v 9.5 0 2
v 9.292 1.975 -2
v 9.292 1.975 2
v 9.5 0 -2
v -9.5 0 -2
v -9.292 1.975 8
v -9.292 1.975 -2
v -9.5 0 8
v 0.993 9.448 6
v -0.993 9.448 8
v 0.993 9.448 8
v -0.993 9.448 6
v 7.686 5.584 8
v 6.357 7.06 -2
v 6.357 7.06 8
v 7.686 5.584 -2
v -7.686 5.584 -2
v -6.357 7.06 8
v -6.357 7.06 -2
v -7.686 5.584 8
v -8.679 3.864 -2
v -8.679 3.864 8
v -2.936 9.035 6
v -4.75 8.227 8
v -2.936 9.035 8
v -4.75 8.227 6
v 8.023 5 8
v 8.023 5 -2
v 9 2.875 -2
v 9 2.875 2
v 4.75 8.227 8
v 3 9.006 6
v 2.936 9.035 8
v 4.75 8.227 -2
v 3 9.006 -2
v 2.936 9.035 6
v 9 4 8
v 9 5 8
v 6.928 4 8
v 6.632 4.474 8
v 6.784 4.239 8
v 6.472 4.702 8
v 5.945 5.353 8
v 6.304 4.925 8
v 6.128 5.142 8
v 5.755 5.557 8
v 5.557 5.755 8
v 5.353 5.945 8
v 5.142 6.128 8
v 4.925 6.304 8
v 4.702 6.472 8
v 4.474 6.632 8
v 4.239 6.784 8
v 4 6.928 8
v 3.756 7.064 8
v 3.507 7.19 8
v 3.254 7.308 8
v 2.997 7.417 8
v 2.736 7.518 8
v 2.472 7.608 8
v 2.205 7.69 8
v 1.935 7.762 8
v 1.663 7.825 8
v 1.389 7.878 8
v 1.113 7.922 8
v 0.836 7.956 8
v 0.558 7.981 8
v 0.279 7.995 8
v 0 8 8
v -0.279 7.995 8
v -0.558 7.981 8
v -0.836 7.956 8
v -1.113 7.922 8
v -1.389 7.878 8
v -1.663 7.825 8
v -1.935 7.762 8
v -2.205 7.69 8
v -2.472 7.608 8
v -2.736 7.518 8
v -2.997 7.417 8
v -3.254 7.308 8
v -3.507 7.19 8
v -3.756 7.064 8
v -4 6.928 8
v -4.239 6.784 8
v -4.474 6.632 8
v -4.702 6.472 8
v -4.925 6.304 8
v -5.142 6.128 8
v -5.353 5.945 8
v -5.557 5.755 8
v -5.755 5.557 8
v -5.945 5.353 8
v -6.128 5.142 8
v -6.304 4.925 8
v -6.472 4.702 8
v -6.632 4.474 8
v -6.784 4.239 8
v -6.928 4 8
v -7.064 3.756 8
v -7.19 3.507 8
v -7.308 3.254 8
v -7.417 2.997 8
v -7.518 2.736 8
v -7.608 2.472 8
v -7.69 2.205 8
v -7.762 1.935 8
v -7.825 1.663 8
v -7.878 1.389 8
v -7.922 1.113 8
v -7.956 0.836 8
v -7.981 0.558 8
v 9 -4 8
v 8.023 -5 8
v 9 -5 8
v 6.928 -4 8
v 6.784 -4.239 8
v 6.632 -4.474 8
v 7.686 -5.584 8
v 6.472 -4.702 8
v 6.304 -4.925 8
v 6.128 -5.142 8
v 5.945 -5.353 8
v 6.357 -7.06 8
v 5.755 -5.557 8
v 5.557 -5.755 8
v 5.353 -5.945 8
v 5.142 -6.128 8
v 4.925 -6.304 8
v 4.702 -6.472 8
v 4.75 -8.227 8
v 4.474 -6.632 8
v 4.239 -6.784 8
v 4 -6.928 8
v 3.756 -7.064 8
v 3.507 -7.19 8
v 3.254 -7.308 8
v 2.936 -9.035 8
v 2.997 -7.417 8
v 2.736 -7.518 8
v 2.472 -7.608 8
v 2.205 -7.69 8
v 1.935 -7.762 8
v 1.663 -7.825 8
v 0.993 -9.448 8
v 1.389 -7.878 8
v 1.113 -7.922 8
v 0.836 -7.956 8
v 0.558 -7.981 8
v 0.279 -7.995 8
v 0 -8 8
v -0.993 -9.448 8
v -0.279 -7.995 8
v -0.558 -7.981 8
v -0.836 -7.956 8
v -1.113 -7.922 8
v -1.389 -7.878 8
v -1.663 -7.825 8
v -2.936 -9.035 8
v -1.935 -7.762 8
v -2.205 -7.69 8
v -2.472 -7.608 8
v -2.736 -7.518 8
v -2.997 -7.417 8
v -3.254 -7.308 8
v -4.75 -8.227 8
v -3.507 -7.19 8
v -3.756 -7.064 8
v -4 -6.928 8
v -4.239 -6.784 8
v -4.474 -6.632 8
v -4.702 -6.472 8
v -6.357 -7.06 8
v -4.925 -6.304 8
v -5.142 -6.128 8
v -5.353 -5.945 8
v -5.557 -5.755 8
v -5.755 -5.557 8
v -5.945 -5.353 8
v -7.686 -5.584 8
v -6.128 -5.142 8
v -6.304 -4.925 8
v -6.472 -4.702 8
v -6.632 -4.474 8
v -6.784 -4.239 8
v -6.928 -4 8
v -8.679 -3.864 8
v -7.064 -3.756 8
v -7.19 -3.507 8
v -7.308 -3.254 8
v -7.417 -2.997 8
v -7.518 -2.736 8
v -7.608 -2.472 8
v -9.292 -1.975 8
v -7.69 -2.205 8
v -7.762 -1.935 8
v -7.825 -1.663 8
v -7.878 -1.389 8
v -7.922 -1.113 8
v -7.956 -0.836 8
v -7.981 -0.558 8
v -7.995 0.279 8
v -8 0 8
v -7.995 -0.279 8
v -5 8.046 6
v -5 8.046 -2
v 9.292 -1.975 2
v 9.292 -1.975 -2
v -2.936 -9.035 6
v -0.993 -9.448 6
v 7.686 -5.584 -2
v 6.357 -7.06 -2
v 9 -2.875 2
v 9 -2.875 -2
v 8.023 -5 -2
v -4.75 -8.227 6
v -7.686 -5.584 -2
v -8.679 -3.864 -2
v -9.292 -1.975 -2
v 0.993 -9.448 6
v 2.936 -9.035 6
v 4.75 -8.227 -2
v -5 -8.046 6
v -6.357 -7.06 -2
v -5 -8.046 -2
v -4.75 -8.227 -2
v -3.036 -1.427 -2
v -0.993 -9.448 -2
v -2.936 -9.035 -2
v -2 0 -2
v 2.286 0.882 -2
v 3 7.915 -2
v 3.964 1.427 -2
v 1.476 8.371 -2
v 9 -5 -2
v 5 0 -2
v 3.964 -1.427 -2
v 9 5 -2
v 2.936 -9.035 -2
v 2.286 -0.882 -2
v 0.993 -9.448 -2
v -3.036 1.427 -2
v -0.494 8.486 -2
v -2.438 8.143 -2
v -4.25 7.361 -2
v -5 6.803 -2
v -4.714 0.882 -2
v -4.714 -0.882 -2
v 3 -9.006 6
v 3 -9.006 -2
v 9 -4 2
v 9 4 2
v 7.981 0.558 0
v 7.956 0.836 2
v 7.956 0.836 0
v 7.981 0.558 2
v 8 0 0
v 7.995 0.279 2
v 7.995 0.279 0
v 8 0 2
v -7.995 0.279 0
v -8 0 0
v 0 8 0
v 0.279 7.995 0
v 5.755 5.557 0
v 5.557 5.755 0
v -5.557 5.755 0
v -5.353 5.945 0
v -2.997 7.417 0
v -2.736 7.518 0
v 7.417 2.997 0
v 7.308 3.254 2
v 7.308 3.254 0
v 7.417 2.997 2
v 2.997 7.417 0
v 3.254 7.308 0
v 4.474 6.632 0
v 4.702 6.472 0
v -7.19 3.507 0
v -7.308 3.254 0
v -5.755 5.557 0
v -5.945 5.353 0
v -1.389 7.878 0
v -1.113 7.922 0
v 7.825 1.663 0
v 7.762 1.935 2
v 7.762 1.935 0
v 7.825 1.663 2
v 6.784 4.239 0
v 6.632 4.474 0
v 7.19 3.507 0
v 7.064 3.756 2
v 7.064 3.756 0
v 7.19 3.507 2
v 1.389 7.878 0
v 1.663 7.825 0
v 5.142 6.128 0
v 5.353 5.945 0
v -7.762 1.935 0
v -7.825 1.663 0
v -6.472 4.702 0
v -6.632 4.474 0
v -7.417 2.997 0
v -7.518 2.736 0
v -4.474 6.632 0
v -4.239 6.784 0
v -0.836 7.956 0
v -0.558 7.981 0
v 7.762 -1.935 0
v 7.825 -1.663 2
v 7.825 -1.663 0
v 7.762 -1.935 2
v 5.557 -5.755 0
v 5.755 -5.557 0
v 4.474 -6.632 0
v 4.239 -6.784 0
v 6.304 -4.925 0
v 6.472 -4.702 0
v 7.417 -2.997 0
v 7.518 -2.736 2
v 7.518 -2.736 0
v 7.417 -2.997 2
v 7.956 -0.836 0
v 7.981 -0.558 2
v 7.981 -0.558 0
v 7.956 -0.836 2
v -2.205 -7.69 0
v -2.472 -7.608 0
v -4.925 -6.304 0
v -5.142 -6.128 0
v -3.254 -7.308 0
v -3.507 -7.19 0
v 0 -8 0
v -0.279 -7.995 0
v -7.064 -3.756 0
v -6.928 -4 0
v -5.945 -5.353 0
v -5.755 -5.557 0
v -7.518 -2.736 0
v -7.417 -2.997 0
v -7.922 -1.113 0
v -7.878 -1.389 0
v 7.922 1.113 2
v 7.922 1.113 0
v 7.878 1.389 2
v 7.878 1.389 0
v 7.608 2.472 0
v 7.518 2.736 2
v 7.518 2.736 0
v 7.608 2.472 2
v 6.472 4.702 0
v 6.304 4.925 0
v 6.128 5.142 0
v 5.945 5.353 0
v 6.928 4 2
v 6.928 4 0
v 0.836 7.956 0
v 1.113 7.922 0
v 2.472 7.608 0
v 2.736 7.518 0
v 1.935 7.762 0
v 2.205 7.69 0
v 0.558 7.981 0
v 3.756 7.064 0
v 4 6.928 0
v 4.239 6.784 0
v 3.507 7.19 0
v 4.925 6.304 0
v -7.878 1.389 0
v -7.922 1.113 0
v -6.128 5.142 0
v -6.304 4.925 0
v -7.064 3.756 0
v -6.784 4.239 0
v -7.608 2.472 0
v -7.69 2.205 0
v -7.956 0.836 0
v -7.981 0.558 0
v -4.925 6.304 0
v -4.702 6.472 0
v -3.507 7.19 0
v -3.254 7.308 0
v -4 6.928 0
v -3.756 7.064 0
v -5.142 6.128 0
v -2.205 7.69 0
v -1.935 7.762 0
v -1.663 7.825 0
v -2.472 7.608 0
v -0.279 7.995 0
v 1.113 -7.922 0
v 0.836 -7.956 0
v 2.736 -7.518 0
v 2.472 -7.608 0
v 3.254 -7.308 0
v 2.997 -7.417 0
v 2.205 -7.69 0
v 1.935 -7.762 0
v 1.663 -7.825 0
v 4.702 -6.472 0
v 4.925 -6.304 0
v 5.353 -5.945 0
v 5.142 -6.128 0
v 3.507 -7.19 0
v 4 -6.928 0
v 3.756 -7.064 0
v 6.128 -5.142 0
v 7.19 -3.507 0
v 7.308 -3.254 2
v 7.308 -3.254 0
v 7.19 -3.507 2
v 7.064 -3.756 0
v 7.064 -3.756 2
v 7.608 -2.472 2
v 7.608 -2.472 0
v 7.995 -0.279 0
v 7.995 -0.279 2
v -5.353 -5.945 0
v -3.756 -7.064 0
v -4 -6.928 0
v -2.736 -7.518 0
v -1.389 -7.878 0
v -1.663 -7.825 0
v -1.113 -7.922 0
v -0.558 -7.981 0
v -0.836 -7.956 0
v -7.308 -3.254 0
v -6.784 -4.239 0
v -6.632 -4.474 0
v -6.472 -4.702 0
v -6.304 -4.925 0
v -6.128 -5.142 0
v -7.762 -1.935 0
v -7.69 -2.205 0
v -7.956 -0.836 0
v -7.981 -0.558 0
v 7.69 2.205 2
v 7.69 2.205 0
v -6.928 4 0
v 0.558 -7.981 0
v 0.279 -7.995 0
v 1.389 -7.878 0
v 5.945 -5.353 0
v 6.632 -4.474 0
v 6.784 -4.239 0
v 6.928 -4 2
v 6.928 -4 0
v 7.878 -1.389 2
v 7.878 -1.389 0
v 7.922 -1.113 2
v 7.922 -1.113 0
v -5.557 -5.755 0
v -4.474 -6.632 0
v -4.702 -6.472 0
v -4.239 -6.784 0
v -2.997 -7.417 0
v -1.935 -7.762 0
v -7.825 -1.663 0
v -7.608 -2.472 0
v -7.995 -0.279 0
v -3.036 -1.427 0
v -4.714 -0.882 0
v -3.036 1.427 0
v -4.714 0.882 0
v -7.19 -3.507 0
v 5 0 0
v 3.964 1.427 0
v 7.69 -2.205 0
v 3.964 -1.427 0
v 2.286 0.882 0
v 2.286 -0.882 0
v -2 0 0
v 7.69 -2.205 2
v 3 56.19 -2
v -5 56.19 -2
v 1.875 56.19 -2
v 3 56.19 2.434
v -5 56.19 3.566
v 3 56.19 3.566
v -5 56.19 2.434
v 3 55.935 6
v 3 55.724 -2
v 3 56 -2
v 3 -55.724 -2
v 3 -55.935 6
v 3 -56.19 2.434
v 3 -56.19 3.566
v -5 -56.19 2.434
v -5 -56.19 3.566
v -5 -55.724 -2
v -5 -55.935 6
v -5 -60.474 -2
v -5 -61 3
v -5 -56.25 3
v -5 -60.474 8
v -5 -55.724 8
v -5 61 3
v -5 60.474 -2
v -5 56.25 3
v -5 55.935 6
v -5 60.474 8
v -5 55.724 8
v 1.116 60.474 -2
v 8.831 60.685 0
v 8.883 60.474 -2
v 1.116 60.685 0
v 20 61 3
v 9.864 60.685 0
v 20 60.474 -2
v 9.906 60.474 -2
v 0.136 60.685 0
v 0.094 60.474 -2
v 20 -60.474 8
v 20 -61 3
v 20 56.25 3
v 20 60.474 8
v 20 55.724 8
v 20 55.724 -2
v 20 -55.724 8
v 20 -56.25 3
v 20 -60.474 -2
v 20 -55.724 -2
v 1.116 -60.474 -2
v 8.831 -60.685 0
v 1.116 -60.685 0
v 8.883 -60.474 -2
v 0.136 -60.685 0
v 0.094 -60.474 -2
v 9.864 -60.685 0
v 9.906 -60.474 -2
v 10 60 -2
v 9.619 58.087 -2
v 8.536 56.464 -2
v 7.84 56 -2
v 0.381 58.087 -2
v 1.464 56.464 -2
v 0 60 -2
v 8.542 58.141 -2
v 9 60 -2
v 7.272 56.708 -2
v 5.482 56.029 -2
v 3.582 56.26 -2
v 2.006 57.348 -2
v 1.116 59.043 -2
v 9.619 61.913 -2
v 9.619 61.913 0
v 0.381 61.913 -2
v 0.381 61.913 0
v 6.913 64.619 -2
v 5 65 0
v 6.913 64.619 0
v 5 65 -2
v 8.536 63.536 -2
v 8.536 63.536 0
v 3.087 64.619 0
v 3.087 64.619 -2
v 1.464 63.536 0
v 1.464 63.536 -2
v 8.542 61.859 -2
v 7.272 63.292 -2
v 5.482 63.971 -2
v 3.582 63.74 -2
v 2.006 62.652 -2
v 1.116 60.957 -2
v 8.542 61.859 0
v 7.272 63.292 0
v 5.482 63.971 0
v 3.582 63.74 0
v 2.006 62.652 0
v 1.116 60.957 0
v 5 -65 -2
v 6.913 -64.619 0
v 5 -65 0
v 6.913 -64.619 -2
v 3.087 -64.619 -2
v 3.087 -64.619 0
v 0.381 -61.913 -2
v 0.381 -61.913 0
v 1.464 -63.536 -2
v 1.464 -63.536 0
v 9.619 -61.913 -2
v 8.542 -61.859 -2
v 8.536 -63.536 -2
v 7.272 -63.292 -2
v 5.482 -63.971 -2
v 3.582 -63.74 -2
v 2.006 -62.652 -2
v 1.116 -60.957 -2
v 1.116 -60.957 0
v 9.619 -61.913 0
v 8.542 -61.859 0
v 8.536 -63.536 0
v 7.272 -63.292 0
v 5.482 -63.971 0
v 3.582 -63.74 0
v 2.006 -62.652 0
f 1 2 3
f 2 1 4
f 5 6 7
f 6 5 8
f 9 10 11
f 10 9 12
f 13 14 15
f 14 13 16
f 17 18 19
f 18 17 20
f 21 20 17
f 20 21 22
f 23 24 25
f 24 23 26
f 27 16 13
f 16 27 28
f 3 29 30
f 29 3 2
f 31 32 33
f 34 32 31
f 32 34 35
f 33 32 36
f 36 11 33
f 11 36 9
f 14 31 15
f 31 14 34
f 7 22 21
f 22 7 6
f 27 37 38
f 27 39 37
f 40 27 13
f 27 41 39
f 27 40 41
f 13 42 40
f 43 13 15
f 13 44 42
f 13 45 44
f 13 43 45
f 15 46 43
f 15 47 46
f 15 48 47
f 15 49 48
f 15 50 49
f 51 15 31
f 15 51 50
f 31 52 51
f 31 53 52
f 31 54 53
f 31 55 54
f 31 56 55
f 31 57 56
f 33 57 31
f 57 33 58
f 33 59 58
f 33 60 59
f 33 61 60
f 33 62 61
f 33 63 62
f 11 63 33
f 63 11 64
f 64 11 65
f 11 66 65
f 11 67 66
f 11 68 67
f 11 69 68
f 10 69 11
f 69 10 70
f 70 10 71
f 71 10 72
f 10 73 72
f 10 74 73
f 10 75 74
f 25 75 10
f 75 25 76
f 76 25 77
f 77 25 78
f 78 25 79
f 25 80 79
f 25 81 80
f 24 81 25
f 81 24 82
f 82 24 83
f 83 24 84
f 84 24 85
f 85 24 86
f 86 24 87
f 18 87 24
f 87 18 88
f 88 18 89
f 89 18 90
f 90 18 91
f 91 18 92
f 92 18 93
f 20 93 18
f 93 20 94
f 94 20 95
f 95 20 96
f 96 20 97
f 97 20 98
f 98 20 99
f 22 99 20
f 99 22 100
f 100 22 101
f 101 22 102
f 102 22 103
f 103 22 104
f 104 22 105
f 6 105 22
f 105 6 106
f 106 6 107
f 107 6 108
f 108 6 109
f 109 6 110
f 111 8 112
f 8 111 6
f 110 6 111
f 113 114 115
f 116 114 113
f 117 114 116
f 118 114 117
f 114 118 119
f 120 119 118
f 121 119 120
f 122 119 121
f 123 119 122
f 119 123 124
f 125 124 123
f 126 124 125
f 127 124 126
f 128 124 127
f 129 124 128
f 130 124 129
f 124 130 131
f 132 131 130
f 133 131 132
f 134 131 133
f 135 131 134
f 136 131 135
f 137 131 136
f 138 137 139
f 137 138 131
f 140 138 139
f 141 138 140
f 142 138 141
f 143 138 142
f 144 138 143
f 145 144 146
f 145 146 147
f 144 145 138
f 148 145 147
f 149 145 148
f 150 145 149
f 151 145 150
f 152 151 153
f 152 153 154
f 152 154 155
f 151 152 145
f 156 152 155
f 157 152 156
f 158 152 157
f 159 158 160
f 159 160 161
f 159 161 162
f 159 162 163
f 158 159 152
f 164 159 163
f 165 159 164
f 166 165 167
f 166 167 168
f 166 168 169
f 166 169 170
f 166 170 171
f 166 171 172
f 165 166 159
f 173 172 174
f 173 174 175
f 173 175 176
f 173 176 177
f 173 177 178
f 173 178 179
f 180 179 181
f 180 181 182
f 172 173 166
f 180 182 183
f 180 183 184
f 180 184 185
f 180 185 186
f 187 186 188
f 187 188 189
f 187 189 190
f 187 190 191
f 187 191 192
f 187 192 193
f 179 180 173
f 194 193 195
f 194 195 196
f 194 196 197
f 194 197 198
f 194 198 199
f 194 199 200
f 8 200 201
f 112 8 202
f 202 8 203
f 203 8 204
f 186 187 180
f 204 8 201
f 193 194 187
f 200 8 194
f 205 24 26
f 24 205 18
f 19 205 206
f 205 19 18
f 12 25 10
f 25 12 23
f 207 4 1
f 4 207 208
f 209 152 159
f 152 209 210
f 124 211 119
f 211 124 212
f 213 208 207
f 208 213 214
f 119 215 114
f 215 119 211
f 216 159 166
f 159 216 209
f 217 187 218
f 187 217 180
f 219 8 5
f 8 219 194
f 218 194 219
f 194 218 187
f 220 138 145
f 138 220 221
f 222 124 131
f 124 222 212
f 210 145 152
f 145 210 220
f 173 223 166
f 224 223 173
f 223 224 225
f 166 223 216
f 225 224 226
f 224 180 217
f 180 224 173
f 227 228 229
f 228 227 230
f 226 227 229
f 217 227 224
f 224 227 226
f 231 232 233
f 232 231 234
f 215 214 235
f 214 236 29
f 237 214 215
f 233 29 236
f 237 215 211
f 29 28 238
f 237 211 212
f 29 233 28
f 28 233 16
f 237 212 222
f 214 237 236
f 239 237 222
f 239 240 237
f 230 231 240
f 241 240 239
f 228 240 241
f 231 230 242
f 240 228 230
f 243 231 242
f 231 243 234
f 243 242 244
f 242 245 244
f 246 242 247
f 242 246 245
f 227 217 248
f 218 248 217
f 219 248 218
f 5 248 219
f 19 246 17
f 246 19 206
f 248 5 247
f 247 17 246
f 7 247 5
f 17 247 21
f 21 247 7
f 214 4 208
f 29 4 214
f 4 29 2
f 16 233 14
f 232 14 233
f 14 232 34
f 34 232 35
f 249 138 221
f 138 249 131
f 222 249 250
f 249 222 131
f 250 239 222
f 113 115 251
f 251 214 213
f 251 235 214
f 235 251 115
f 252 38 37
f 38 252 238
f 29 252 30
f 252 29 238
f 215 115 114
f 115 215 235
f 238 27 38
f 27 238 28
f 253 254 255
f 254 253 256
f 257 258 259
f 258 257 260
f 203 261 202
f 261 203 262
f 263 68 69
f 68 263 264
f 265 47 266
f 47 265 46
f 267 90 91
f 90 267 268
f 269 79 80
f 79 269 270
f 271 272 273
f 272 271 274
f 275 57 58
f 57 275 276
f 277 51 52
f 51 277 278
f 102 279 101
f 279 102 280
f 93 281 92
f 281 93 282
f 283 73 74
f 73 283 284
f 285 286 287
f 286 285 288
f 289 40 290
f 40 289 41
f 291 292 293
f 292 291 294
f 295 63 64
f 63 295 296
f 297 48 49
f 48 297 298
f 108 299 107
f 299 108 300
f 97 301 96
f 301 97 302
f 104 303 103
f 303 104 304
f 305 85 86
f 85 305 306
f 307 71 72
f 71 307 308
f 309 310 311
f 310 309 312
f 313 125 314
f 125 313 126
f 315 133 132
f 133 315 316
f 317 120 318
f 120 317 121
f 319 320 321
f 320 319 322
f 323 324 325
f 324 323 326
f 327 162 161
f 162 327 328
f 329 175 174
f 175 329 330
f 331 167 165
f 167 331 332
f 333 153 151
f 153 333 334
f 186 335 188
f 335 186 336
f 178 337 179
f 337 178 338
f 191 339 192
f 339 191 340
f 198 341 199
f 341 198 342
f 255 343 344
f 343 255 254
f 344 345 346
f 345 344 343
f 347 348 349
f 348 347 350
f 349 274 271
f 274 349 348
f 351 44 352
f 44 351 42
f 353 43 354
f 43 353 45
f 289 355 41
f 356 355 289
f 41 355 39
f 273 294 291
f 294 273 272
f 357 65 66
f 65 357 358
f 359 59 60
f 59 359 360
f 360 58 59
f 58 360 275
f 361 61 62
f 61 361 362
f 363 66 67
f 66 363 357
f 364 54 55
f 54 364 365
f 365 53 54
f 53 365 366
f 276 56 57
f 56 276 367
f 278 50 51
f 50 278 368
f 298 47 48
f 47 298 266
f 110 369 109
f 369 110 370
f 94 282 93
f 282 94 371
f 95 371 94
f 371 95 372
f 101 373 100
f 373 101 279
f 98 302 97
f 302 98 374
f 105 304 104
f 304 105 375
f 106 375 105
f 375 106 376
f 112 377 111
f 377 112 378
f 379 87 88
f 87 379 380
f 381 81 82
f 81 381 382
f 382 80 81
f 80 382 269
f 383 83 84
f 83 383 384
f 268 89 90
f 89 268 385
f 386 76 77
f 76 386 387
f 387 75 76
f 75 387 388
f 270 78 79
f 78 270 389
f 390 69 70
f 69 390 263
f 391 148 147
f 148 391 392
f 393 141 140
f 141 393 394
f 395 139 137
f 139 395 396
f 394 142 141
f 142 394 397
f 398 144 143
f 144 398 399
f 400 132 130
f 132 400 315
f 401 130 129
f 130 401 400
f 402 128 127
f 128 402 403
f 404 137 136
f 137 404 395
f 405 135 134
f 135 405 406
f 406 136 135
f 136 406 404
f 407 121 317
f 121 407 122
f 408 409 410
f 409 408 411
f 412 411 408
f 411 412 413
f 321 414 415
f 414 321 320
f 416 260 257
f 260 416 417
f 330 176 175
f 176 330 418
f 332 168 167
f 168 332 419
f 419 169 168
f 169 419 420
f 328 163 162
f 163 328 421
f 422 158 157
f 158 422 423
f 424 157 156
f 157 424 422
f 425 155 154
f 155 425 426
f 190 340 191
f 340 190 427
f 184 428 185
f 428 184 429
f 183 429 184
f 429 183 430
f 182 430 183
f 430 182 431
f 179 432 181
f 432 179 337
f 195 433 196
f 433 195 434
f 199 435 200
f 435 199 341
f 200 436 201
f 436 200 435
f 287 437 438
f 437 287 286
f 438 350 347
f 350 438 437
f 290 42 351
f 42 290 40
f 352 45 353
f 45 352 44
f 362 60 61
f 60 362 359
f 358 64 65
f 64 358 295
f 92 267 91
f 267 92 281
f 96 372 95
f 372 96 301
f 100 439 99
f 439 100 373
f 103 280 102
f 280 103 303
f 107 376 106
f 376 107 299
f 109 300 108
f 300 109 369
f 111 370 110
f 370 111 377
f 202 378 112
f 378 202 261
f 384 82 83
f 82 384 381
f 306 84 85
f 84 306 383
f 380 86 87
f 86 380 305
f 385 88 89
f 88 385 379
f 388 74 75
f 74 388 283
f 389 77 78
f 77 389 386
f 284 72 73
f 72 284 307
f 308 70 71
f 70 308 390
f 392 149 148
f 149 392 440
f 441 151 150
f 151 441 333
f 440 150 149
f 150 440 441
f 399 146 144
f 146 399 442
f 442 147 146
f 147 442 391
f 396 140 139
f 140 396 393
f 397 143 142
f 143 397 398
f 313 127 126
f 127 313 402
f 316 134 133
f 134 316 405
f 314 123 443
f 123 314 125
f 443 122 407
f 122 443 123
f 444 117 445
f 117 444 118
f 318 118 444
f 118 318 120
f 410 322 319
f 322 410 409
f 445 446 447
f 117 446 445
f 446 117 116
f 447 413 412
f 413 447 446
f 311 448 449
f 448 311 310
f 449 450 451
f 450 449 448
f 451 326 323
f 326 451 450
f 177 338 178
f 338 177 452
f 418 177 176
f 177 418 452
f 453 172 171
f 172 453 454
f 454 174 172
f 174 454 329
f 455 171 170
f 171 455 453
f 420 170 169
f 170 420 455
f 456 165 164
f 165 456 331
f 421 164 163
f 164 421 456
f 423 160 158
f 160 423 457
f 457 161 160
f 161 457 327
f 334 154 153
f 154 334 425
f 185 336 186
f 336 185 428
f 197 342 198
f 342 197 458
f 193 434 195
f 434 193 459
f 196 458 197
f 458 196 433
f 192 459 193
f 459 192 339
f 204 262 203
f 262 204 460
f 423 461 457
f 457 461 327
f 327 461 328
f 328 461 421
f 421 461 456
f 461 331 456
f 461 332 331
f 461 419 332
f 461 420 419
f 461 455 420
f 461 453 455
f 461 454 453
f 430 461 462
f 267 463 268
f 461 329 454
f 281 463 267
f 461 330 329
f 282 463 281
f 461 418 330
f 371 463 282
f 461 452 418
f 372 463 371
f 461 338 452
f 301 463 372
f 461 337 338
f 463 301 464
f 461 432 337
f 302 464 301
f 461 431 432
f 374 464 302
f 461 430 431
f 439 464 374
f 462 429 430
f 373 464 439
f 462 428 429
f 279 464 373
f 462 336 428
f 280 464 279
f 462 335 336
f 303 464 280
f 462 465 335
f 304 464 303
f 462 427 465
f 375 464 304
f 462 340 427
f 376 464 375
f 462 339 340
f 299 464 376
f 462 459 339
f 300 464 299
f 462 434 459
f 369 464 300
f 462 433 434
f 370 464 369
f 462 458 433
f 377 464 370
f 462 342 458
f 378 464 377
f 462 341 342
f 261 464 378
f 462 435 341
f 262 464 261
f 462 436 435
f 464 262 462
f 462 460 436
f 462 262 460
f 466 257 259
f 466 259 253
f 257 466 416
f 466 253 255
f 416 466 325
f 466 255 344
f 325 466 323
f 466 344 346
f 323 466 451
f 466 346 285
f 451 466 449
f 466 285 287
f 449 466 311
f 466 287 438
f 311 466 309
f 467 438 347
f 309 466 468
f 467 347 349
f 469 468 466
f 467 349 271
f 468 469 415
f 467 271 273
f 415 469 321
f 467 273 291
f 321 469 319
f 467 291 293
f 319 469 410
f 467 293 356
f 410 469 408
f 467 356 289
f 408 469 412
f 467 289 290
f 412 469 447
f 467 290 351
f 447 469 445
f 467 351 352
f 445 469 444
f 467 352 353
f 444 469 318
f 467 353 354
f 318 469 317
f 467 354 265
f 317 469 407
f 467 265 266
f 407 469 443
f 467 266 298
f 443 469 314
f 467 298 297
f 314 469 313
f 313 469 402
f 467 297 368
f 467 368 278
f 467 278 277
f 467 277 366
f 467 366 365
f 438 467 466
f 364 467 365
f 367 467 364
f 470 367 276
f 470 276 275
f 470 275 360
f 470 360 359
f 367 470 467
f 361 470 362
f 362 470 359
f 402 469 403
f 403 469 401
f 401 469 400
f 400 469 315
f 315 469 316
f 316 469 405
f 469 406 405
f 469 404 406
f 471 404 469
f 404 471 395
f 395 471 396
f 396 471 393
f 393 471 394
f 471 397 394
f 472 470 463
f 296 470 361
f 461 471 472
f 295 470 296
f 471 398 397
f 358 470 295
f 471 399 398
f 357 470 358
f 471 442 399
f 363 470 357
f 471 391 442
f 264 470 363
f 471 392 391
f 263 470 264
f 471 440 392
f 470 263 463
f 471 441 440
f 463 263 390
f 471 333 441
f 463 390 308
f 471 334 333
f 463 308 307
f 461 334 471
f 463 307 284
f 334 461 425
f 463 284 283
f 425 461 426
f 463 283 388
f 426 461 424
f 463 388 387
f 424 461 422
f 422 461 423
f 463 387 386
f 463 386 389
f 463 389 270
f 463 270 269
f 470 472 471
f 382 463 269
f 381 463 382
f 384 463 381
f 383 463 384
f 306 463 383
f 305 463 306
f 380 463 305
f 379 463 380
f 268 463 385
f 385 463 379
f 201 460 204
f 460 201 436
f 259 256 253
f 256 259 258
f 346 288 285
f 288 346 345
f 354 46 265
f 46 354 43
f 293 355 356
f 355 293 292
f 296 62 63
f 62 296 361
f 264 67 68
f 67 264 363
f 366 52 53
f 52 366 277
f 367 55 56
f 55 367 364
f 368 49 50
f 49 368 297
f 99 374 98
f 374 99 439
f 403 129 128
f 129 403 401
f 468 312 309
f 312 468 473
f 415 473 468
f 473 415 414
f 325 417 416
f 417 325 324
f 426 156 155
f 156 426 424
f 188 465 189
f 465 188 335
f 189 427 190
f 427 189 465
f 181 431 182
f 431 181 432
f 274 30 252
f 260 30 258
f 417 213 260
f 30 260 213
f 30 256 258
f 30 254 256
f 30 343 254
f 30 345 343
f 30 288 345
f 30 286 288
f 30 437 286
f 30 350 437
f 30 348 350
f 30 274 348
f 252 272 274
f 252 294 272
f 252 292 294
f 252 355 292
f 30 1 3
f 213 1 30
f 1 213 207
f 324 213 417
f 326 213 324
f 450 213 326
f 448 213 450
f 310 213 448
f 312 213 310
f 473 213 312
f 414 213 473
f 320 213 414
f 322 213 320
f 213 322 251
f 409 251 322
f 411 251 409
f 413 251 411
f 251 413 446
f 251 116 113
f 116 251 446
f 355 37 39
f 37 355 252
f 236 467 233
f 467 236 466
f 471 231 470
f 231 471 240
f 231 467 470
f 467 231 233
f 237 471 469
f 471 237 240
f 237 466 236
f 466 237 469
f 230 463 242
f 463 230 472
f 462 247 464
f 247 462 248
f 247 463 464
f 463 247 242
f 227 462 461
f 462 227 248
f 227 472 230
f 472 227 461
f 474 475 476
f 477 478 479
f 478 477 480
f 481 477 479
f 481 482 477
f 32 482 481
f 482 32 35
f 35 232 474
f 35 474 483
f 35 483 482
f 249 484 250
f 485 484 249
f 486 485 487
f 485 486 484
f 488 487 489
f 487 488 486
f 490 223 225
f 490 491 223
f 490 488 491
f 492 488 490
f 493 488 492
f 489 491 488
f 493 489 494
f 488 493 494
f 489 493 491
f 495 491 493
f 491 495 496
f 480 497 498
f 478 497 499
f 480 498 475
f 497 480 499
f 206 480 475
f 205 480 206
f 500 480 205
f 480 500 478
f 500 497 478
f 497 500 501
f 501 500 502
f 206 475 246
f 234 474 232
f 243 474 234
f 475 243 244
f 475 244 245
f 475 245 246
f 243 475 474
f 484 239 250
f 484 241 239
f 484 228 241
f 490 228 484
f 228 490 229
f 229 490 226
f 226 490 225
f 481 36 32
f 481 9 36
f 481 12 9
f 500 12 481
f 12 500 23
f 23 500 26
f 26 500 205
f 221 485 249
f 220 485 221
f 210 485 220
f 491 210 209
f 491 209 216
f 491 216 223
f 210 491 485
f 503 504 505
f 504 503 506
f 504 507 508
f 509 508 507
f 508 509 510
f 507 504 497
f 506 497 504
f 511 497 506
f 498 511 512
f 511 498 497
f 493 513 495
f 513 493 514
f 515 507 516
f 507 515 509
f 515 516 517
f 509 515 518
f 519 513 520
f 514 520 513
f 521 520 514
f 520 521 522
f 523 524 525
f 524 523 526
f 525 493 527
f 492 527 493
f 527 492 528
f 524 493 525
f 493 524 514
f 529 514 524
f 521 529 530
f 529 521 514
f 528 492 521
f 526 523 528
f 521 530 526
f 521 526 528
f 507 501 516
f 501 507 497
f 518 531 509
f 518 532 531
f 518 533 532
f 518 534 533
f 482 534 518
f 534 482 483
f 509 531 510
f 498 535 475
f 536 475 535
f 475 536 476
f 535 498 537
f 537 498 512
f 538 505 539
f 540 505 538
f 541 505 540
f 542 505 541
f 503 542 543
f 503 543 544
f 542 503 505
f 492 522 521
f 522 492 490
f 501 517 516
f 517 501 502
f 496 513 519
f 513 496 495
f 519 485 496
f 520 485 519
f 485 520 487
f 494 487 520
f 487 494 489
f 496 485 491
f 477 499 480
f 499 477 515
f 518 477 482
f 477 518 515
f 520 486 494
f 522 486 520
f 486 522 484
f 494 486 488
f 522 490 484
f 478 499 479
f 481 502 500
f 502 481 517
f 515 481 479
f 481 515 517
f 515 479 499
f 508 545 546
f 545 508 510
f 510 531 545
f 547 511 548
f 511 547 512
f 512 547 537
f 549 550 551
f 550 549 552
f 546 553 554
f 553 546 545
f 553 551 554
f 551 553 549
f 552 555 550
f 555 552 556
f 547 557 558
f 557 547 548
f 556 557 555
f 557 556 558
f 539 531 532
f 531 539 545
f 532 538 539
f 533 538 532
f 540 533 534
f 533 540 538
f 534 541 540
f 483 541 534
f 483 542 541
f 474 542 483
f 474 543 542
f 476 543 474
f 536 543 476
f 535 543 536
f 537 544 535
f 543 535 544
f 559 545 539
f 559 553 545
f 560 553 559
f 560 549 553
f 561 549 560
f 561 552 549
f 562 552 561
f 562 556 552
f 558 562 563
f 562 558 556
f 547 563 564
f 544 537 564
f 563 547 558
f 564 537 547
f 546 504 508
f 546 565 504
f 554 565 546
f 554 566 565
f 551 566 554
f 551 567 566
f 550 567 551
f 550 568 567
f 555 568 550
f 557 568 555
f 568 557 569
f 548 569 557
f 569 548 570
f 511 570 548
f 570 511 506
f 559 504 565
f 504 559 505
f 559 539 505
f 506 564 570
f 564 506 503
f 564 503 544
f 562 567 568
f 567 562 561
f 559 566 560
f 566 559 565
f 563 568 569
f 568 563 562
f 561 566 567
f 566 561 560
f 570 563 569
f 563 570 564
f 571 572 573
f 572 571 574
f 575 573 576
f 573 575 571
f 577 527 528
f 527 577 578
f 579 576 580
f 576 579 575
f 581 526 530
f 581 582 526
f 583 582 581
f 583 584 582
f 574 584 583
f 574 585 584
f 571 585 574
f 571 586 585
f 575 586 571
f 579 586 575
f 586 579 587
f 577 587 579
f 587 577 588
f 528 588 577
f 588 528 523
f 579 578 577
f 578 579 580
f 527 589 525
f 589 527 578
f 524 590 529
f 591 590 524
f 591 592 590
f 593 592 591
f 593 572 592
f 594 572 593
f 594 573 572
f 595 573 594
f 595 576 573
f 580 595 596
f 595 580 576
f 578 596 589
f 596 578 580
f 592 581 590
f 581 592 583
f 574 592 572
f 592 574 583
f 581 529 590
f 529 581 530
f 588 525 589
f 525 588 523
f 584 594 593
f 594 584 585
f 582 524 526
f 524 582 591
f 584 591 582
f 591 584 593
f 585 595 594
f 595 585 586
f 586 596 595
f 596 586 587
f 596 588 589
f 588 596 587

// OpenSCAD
// d = 11.7mm h = 7.1mm l = (13.6-11.7)mm x 0.58cm x 0.58cm (between pins = 6.8mm, 2.5mm)
// tube: 11cm
// add 1 for expansion
expa = 1;
// 1mm = 1

// holder
union (){
    difference () {
        union () {
            translate([0,0,-2])
                cylinder(h = 10, d = (17 + 2*expa), center = false);
            translate([5,-5,-2])
                cube([4,(8 + 2*expa),10], center = false);
        }
        
        union () {
            cylinder(h = 9, d = (14 + 2*expa), center = false, $fn = 180);
            translate([5,-4,2])
                cube([5,(6 + 2*expa),7], center = false);
        }
        
        translate ([3.5,0,-5])
            cylinder(h = 15, d = 3, center = true);
        translate ([-3.5,0,-5])
            cylinder(h = 15, d = 3, center = true);
    }
}

difference () {
    union () {
        translate ([0,0,3]) {
            rotate ([90,180,90]) {
            // bridge
                union () {
                    rotate ([0,0,90]) {
                        difference () {  // bridge
                            translate ([0,0,-5])
                                cylinder (h = 8, d = (111 + 2*expa), center = false);
                            translate ([5,-57,-6])
                                cube ((112 + 2*expa), center = false);
                            translate ([-117,-57,-6])
                                cube ((112 + 2*expa), center = false);
                        }
                    }
                }

            // connecter
                difference () {
                    translate ([0,0,-5]) {
                        cylinder (h = 25,d = (120 + 2*expa), center = false);}
                        
                        translate ([-65,5,-10]){
                            cube ([130,110,100], center = false);}
                        translate ([-65,-115,-10]){
                            cube ([130,110,100], center = false);}
                        
                        translate ([0,0,-10]){
                            cylinder (h = 100,d = (110.5 + 2*expa), center = false);}
                    
                }
            }
        }
    }
    translate([0,0,-20])
          cylinder(h = 111, d = (15 + 2*expa), center = false);  // holder
}

// hoops
difference () {
    union () {
        translate ([5,60,-2]) {
            rotate ([0,0,0]) {
                difference() {
                    cylinder(h = 2, r = 5, center = false);
                    translate ([0,0,-1])
                        cylinder(h = 4, r = 4, center = false);
                }
            }
        }
        translate ([5,-60,-2]) {
            rotate ([0,0,0]) {
                difference() {
                    cylinder(h = 2, r = 5, center = false);
                    translate ([0,0,-1])
                        cylinder(h = 4, r = 4, center = false);
                }
            }
        }
    }
    translate([0,-56,-10])
        cube(112,center = false);
}
